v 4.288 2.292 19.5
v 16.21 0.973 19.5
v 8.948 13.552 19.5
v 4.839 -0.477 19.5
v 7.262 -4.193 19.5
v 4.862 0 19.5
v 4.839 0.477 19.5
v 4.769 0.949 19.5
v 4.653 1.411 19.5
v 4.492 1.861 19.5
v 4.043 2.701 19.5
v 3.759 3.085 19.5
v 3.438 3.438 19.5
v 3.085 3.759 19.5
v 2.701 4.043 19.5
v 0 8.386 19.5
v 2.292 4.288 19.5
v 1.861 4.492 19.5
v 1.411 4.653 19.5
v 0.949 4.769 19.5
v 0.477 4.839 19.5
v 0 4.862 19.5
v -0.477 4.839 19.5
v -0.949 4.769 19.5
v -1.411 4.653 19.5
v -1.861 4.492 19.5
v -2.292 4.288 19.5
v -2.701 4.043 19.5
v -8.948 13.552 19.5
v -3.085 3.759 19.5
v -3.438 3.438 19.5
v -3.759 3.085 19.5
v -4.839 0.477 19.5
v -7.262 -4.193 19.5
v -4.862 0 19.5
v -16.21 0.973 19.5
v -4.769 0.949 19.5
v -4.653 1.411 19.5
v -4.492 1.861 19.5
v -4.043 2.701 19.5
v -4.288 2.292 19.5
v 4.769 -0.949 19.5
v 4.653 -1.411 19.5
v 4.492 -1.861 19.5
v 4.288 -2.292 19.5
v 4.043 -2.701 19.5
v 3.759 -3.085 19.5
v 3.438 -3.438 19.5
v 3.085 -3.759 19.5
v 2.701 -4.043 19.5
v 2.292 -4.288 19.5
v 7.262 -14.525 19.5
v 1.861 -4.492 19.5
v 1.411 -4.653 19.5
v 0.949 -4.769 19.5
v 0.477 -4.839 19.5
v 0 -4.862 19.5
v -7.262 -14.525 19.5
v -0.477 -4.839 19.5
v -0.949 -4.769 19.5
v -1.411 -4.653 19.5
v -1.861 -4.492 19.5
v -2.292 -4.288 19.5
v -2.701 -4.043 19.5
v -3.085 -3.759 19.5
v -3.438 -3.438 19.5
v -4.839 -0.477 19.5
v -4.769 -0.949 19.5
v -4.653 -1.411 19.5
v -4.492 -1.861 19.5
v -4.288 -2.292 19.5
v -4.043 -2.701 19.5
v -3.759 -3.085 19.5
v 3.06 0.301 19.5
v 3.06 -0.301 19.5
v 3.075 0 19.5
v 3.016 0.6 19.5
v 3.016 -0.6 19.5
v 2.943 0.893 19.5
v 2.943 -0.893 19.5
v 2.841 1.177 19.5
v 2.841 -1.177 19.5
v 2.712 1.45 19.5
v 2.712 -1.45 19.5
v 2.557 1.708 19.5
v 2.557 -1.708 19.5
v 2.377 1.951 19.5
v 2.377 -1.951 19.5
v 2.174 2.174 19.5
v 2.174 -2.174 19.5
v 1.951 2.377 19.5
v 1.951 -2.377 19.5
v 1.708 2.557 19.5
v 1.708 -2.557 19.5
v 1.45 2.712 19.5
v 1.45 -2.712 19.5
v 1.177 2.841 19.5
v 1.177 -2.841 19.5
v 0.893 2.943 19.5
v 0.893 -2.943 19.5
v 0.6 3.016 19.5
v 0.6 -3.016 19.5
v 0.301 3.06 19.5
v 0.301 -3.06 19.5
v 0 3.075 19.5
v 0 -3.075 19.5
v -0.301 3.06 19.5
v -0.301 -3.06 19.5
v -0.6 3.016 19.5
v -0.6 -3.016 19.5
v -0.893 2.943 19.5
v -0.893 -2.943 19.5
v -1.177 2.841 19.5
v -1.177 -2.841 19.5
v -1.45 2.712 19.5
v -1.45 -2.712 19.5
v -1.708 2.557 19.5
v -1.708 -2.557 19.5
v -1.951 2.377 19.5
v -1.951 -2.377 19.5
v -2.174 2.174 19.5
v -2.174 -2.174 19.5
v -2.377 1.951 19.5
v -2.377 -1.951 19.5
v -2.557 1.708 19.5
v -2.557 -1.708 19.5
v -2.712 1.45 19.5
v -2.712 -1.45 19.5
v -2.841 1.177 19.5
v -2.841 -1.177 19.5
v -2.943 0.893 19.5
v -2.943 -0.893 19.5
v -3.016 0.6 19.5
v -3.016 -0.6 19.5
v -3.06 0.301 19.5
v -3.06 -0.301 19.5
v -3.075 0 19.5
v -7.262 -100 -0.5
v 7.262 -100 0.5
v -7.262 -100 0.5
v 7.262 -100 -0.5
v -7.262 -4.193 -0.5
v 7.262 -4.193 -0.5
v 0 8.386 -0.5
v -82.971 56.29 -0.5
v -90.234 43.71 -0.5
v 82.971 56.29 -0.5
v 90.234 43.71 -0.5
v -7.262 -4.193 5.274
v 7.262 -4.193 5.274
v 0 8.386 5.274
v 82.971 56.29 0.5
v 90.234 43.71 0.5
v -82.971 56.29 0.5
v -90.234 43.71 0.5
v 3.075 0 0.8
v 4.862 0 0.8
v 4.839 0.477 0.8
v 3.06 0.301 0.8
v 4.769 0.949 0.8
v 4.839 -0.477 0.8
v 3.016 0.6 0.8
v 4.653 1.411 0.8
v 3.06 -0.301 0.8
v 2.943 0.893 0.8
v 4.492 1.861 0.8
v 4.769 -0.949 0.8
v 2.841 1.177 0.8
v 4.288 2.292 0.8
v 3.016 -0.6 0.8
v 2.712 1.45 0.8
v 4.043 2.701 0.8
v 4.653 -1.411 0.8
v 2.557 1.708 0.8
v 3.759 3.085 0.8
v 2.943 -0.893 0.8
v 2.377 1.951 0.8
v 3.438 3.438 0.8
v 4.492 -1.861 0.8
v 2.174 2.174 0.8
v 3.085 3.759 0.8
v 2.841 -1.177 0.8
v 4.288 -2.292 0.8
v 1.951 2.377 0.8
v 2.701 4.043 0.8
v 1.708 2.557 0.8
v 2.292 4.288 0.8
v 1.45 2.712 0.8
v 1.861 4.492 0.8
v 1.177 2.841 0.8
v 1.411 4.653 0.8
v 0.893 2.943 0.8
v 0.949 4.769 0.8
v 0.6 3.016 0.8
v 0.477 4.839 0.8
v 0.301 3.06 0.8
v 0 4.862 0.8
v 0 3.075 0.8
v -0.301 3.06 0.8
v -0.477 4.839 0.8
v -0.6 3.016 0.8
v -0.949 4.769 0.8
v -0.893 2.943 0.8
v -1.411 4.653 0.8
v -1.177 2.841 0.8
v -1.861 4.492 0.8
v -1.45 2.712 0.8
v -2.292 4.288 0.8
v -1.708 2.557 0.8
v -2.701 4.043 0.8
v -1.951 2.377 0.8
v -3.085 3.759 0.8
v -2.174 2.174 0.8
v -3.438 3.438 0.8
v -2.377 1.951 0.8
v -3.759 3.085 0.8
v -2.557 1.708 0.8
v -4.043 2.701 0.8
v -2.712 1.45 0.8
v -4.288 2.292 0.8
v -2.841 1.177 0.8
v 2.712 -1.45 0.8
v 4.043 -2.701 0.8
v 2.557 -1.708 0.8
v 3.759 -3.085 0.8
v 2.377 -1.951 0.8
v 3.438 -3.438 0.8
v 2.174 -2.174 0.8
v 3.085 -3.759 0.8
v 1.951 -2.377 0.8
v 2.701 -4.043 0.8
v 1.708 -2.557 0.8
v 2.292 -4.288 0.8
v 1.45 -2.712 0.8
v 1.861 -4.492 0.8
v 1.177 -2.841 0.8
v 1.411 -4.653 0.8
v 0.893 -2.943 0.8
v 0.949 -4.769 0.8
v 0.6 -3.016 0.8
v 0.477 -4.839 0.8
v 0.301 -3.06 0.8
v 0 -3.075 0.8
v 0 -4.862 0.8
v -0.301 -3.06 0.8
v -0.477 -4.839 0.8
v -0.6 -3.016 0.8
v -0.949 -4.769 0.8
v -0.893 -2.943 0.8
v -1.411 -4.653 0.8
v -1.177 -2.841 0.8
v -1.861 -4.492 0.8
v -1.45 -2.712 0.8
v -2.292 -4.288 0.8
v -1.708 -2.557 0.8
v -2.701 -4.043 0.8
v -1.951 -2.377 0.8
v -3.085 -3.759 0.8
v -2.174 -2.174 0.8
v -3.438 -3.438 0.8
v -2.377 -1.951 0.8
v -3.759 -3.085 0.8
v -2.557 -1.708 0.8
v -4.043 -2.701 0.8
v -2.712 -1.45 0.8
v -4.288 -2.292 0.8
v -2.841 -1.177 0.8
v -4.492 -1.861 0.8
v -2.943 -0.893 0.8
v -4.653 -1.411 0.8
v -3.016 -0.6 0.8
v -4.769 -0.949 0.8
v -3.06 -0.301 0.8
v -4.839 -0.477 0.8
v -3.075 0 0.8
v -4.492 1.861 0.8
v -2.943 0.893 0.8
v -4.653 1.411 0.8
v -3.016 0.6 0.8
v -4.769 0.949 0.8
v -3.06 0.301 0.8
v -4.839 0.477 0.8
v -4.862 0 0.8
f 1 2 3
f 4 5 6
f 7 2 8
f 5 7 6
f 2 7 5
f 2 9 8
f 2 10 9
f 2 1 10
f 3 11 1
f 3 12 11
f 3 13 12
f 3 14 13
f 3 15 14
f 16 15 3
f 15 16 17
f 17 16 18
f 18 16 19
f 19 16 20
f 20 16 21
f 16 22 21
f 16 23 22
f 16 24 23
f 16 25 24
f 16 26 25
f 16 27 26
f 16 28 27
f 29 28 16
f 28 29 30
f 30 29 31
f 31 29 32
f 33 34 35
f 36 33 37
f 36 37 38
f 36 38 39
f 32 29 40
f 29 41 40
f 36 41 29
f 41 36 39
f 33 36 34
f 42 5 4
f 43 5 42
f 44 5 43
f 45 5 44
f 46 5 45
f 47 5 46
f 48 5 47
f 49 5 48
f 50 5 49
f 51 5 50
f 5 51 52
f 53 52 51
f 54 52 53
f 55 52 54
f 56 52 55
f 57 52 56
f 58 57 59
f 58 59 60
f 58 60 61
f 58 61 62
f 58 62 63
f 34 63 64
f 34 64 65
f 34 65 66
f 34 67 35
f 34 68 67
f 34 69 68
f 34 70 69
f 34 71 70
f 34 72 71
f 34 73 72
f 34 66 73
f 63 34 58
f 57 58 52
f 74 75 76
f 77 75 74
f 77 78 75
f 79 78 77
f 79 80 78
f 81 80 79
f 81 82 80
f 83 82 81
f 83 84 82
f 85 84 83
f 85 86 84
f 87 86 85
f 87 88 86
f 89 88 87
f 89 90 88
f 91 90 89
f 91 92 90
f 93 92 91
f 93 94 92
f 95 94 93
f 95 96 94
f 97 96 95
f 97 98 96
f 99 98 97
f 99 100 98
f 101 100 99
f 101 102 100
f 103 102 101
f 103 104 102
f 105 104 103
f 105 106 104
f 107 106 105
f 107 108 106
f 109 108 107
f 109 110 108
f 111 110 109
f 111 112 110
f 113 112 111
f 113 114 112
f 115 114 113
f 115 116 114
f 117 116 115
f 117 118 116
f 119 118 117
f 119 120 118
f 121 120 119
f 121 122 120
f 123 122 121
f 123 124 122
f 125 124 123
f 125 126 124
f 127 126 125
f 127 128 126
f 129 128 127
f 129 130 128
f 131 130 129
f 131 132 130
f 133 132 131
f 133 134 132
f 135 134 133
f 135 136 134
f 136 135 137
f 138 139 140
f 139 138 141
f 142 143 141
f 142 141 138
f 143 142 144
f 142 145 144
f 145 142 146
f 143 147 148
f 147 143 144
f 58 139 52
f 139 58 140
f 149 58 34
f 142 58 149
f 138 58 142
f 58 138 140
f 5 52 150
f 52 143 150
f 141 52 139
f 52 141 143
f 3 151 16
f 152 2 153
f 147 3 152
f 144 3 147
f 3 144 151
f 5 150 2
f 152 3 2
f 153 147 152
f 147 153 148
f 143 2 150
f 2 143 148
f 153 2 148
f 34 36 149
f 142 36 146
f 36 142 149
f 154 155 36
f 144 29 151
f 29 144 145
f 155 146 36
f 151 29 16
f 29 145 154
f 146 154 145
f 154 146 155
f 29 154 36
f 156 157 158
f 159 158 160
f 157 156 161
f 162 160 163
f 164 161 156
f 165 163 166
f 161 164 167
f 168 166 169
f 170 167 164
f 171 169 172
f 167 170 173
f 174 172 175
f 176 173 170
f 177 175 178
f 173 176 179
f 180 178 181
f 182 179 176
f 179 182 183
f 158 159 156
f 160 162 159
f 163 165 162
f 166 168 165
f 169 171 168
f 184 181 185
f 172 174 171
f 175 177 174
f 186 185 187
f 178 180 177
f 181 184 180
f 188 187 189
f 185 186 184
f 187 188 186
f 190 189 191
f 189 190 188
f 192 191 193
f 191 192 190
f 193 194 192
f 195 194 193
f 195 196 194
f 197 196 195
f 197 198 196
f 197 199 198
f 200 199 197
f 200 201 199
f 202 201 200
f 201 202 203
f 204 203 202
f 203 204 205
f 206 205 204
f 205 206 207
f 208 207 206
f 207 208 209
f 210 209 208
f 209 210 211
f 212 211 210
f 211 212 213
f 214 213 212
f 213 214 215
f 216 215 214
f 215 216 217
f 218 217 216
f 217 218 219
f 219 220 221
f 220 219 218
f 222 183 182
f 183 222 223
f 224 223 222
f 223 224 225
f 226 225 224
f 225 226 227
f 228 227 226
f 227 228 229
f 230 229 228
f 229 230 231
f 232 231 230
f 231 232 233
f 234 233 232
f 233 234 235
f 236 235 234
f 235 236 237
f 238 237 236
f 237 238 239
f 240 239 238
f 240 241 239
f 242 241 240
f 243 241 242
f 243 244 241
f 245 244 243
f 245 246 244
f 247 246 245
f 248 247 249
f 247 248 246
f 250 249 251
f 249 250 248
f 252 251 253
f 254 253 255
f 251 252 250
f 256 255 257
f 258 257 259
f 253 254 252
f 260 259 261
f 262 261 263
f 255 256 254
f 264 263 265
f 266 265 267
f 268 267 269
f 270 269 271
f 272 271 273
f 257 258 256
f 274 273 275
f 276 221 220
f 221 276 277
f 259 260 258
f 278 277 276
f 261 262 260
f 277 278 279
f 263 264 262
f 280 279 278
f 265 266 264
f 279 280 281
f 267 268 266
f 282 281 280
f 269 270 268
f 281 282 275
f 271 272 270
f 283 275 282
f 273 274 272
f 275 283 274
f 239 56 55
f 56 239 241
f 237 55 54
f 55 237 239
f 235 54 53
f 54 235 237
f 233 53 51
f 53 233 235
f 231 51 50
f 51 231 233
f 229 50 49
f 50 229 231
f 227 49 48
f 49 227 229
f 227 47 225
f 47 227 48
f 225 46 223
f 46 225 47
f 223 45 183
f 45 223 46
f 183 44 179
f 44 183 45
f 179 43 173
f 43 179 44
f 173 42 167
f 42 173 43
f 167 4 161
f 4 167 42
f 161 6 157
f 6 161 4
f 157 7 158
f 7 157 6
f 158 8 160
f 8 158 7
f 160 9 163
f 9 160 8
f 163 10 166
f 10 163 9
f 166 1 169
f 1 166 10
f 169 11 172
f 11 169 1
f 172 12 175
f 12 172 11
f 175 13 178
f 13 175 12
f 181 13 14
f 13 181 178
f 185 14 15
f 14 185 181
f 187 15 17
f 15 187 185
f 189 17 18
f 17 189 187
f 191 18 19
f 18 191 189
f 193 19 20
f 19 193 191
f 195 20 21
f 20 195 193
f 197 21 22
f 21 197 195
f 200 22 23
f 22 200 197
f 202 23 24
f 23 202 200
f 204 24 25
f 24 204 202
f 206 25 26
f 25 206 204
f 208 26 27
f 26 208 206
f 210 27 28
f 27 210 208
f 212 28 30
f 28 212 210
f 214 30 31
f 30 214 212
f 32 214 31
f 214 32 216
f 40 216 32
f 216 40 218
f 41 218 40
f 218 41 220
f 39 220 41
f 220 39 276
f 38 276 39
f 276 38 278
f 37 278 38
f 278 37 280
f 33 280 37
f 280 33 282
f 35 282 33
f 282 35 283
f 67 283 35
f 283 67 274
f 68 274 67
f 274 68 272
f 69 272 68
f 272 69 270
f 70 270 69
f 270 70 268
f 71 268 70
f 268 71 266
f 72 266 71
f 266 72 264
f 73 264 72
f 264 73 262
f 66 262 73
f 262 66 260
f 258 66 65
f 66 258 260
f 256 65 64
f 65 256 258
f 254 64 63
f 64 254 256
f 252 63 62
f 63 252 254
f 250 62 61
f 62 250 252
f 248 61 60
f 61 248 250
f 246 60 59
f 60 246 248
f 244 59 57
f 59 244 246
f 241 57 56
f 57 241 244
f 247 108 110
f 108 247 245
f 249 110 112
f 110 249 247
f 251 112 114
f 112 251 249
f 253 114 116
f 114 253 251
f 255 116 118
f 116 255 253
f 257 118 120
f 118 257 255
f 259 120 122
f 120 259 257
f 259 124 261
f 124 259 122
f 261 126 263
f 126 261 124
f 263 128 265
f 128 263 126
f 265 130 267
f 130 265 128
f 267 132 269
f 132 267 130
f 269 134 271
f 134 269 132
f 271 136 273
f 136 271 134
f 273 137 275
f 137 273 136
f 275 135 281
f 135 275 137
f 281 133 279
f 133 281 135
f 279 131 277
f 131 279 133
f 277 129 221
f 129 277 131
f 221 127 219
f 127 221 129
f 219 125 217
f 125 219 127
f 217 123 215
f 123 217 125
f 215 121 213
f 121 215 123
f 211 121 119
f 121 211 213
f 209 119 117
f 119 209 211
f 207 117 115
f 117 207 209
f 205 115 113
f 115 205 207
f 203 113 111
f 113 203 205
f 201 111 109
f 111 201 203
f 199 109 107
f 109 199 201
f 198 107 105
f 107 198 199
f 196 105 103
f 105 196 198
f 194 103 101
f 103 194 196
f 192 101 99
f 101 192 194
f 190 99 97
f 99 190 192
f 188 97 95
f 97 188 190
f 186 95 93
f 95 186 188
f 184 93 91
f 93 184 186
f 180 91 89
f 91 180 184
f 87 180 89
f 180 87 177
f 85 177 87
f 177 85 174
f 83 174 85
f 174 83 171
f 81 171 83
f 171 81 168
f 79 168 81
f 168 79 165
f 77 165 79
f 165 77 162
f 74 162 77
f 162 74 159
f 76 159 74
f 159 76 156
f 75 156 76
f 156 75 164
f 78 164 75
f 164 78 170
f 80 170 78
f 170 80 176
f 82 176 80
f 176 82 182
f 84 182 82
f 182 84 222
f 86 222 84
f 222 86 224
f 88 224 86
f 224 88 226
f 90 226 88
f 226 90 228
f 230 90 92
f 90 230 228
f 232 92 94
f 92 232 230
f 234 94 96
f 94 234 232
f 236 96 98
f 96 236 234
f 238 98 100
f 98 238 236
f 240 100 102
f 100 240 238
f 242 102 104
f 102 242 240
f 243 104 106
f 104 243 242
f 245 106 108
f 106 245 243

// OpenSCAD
// file: mass-driver-parts.scad
$fn = 64;

nozzle_diameter = 0.4;
layer_height = nozzle_diameter / 2;

// outer diameter of the tube we're using.
// Was using 10mm OD tube, but switched to 3/8" OD, 1/4" ID
tube_diameter = 9.525;
tube_inner_diameter = 6.35;

// Tolerances to add to an inner diameter so it fits over
tight_fit = 0.2;
loose_fit = 0.4;

epsilon = 0.01;

module tube(inner_diameter, outer_diameter, length){
    linear_extrude(length){
        difference(){
            circle(d = outer_diameter);
            circle(d = inner_diameter);
        }
    }
}

module loose_tube(length) {
    outer_diameter = tube_diameter + nozzle_diameter + loose_fit;
    
    tube(outer_diameter, outer_diameter + nozzle_diameter, length);
}

module base(inner_diameter, outer_diameter, thickness) {
    difference() {
        cylinder(d = outer_diameter, h = thickness);
        translate([0, 0, -epsilon])
        cylinder(d = inner_diameter, h = thickness + epsilon * 2);
    }
}
// main file
include <./mass-driver-parts.scad>;

base_diameter = tube_diameter + 5;
base_height = 20;

num_arms = 3;

module holder() {
    inner_diameter = tube_inner_diameter - tight_fit;
    outer_diameter = tube_diameter + tight_fit;
    
    tube(inner_diameter, outer_diameter, base_height);
}

module arm(length = 100) {
    translate([0, length / -2, 0])
    hull() {
        cube([base_diameter, length, 1], center = true);
        translate([0, (length - base_diameter)/2, base_height - 1])
        cube([base_diameter, base_diameter, 1], center = true);
    }
}

module arms(){
    for(i = [0 : num_arms]) {
        rotate([0, 0, (360 / num_arms) * i])
        arm();
    }
}

module the_whole_dohicky(){
    difference(){
        arms();
        translate([0, 0, layer_height * 4])
        holder();
    }
}
the_whole_dohicky();
